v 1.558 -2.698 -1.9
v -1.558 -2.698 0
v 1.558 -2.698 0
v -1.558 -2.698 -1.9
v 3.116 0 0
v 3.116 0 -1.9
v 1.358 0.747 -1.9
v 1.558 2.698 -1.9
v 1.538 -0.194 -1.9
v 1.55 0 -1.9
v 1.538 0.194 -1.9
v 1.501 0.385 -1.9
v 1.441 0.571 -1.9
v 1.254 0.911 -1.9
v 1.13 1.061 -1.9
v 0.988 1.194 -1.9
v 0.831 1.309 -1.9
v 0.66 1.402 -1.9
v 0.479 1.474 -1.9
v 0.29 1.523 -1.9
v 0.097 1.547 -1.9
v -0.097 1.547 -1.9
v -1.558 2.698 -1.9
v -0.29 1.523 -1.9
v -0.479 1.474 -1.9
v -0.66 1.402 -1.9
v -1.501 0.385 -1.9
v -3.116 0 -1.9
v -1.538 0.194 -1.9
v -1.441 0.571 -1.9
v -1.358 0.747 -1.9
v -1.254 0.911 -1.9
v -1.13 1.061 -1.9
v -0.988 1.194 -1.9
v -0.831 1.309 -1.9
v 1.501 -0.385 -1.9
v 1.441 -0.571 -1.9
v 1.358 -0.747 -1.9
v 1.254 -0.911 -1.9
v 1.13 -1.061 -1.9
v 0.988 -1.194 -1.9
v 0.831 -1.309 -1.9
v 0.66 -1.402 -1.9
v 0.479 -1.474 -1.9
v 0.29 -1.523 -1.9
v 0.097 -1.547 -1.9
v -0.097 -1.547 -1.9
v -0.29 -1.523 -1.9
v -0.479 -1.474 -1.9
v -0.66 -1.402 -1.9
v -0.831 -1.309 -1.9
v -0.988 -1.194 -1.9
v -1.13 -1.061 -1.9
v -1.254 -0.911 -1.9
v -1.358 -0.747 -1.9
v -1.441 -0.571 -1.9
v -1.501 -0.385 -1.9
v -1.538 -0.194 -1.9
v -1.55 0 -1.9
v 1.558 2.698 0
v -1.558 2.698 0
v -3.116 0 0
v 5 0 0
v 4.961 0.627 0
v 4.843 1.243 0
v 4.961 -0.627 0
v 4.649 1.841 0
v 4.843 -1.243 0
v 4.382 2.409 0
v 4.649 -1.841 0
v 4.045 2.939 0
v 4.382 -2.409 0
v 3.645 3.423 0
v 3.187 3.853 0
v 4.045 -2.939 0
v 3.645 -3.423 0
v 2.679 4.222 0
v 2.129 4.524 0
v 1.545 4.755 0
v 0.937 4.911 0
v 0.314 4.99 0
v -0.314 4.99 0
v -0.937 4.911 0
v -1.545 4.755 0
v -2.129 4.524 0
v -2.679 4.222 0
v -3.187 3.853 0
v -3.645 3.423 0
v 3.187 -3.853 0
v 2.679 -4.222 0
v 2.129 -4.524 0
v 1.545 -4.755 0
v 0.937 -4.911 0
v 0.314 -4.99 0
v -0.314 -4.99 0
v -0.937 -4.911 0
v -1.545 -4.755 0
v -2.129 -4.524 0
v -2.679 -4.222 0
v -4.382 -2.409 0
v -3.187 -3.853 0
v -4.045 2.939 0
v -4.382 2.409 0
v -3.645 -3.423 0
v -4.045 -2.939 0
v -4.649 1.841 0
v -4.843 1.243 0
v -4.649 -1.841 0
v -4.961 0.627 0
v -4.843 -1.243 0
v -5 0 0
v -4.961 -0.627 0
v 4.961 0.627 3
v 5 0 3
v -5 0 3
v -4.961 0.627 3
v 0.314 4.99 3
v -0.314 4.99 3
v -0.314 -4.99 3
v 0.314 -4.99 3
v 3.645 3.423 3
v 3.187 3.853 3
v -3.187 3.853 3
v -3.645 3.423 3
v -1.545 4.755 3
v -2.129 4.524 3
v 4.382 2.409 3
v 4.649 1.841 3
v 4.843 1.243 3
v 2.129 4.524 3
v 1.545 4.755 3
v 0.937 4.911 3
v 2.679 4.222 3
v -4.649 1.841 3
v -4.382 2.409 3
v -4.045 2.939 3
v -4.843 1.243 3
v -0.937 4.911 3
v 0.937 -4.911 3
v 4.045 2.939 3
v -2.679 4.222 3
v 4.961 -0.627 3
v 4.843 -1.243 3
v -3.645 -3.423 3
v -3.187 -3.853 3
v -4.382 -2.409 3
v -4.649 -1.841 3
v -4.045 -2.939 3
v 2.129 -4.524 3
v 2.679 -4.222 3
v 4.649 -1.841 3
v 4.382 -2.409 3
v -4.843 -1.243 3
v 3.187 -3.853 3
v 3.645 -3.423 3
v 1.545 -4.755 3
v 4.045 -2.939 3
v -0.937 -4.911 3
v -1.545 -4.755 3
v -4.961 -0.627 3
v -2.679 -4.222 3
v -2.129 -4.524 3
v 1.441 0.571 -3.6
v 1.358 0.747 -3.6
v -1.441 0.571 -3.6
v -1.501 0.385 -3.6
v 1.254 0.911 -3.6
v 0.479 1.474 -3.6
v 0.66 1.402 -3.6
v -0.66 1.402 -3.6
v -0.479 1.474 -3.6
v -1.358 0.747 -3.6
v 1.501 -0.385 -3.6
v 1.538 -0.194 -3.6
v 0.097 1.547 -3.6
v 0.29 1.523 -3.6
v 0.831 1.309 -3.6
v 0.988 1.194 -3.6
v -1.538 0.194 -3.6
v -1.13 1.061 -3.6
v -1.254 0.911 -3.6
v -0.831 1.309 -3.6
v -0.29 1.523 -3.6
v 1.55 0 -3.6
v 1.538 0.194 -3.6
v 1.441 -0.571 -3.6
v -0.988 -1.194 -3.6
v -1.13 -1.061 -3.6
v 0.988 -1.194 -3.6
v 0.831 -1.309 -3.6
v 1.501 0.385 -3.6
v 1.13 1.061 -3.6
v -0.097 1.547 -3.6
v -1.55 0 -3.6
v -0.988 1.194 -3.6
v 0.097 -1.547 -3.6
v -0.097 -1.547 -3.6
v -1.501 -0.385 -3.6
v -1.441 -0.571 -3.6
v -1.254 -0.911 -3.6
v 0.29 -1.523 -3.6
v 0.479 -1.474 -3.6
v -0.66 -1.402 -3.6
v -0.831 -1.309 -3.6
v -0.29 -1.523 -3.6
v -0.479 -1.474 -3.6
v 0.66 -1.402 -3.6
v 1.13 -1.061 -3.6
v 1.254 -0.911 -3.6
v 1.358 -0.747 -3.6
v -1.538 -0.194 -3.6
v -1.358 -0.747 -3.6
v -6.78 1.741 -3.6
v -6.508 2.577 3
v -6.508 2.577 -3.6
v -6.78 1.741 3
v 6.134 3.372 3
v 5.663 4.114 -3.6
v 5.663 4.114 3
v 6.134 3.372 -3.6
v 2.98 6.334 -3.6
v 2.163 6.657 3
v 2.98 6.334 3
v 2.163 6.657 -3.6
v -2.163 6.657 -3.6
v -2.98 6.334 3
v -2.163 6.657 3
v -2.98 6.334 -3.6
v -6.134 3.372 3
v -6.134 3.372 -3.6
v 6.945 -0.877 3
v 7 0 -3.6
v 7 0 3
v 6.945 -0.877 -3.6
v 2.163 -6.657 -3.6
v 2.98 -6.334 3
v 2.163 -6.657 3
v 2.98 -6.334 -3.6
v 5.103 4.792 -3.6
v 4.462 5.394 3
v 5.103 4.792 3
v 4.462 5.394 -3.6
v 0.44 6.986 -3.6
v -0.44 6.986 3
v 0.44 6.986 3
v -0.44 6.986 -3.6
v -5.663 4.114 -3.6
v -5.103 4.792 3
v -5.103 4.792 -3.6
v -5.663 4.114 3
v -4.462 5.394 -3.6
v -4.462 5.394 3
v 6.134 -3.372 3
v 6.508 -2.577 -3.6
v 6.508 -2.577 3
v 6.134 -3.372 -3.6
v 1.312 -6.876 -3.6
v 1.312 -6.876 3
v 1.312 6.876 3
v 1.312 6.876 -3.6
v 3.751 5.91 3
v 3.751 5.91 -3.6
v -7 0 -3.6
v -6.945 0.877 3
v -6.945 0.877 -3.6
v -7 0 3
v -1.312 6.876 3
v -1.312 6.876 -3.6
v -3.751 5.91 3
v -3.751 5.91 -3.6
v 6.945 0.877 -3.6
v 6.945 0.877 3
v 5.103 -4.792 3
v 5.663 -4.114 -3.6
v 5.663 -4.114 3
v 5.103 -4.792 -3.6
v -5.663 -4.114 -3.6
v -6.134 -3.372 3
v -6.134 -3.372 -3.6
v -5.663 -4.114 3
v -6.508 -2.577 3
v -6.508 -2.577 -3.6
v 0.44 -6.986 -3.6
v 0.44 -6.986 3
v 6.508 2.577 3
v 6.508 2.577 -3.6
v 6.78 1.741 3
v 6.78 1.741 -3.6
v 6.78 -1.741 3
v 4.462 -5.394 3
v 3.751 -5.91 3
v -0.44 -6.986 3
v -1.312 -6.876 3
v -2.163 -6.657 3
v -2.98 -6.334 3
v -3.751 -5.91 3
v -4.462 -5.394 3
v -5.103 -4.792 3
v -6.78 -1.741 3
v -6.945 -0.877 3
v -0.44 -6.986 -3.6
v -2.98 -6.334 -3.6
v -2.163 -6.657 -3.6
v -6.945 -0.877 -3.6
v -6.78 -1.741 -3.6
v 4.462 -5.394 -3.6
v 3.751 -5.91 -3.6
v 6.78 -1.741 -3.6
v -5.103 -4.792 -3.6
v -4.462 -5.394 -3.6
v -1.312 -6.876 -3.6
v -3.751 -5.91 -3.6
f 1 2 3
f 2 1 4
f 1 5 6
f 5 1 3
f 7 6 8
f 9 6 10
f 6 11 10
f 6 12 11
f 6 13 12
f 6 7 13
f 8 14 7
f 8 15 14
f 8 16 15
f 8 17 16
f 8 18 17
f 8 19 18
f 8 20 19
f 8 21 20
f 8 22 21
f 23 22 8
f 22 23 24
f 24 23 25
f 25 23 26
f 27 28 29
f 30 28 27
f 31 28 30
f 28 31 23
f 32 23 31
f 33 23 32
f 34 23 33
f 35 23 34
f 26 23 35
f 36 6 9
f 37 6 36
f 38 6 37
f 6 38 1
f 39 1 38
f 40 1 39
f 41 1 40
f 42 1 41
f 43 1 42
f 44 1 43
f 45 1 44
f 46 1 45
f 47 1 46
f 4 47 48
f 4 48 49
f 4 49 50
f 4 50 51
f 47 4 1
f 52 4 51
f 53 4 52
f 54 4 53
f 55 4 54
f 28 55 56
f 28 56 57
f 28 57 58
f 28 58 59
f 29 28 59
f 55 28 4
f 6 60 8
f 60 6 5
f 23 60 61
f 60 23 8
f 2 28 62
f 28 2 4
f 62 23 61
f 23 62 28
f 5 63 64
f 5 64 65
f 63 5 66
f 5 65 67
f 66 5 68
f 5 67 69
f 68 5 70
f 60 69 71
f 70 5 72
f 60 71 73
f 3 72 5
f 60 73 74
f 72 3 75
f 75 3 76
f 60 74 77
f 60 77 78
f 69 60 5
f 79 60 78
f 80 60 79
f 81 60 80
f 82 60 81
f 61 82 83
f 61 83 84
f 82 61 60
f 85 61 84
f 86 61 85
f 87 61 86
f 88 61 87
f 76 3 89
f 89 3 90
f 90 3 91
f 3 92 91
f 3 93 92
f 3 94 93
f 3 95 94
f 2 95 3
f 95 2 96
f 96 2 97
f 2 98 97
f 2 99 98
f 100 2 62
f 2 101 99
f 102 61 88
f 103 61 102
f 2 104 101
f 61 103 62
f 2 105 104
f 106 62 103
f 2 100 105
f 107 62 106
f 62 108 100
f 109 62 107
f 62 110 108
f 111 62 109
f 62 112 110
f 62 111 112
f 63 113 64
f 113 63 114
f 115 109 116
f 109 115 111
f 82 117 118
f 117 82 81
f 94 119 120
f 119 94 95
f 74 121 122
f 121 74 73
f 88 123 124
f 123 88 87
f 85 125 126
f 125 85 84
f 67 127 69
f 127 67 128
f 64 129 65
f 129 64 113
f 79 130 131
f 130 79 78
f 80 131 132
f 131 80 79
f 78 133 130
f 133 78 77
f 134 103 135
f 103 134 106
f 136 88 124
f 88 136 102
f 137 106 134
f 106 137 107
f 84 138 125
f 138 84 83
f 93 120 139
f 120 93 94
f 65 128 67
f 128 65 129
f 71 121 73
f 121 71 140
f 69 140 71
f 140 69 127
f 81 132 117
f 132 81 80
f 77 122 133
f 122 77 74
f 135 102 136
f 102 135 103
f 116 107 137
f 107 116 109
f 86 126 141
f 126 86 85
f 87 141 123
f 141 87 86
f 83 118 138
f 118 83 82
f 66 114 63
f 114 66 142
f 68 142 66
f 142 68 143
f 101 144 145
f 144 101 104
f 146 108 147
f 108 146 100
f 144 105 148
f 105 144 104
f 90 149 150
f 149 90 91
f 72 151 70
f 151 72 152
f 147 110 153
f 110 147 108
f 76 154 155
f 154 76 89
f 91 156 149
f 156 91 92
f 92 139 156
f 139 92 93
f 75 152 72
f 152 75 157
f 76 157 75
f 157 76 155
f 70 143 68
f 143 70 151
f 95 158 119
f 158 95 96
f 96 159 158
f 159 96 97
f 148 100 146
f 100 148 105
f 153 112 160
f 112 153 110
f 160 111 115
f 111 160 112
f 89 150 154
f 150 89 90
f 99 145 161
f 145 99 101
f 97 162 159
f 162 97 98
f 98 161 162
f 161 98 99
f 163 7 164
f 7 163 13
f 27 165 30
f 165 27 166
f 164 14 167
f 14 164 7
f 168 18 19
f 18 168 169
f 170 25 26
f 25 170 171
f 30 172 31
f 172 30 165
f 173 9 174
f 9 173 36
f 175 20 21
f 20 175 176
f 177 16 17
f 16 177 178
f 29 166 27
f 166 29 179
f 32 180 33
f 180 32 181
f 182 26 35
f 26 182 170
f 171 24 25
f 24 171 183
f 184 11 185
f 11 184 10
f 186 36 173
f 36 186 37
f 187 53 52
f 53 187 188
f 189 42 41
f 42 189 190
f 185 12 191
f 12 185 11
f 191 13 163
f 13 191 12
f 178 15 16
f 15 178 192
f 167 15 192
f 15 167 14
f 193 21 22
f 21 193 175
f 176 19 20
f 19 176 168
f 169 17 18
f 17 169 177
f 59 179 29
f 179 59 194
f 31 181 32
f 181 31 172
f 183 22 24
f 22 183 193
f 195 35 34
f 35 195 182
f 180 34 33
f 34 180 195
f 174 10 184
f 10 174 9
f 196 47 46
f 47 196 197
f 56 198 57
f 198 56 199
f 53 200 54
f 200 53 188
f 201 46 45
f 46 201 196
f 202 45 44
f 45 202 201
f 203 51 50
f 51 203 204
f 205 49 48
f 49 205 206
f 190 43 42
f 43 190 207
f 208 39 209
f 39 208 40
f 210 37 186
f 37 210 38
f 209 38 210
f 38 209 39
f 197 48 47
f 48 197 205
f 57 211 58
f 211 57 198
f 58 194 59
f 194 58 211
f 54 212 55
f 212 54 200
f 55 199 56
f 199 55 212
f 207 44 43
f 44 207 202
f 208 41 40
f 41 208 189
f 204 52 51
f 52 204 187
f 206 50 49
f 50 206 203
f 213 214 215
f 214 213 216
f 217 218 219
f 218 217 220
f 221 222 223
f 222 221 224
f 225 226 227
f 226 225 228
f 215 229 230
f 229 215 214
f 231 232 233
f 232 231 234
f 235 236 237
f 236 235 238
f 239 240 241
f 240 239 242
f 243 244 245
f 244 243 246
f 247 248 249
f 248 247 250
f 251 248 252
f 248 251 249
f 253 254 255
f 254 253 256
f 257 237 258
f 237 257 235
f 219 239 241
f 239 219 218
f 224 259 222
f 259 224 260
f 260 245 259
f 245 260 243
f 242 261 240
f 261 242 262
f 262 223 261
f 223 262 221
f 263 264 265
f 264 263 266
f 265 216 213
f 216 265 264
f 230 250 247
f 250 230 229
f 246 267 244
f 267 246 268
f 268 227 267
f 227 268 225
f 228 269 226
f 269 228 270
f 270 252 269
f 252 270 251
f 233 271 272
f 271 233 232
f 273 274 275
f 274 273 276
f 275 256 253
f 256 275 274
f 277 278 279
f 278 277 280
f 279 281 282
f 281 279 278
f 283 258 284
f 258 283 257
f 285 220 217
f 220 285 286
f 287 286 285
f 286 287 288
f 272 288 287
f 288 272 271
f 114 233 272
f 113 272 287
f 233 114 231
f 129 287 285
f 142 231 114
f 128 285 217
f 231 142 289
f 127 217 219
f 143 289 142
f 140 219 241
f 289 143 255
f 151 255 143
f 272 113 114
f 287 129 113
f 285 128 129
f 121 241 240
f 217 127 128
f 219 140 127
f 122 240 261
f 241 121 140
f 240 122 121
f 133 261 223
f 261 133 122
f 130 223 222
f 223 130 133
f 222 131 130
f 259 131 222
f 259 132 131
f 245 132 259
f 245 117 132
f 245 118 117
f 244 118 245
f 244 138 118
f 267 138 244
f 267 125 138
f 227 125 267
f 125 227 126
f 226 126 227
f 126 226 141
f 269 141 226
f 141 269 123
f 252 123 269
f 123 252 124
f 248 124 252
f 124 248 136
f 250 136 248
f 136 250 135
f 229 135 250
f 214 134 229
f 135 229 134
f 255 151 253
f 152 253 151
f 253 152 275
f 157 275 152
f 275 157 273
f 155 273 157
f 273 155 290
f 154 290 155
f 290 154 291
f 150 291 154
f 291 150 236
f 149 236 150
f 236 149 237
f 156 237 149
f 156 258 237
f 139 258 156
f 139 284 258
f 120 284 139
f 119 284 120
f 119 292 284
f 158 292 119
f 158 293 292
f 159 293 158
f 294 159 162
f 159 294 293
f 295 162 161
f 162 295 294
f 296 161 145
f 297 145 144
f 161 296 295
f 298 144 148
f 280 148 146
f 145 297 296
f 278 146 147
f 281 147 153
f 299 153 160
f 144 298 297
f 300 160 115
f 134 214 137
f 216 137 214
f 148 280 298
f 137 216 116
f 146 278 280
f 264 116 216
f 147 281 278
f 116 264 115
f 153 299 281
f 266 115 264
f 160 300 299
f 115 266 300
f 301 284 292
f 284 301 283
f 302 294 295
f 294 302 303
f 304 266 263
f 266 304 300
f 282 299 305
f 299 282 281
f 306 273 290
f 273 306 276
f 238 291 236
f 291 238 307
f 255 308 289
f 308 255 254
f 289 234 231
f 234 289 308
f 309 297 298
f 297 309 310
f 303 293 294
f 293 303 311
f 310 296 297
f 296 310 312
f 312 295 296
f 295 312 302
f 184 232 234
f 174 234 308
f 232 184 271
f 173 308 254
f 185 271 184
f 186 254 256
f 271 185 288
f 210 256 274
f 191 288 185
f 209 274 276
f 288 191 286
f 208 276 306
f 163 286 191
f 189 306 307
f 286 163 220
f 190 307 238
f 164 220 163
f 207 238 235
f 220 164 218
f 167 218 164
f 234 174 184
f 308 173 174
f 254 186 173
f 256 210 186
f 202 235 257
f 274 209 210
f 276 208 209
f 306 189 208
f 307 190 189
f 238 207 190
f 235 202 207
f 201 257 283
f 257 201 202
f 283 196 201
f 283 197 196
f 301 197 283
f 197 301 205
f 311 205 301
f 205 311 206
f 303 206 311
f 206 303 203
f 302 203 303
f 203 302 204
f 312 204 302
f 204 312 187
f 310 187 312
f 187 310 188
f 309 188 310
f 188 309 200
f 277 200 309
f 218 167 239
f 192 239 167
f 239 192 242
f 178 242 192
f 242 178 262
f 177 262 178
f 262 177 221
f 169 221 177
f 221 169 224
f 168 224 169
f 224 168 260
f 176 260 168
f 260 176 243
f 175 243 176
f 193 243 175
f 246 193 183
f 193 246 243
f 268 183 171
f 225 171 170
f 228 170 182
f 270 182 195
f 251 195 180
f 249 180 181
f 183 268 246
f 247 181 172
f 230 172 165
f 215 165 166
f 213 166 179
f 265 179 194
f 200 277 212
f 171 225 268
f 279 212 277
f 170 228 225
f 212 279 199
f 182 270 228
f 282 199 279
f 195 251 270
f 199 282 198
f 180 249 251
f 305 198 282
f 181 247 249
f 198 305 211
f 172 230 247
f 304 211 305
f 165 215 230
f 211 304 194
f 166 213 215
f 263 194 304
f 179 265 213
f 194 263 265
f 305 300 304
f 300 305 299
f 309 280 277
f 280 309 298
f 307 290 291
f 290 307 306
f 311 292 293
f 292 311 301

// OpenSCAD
$fn = 50;

difference() {
	union() {
		translate(v = [0, 0, -3.5999999999999996]) {
			cylinder(h = 6.6, r = 7.0);
		}
	}
	union() {
		translate(v = [0, 0, 0]) {
			rotate(a = [0, 0, 0]) {
				difference() {
					union() {
						translate(v = [0, 0, -1.9]) {
							linear_extrude(height = 1.9) {
								polygon(points = [[3.1158, 0.0], [1.5579000000000005, 2.698361953111554], [-1.5578999999999994, 2.6983619531115544], [-3.1158, 3.815754496783323e-16], [-1.5579000000000014, -2.6983619531115535], [1.557899999999998, -2.6983619531115552]]);
							}
						}
					}
					union();
				}
			}
		}
		#cylinder(h = 3, r = 5.0);
		#translate(v = [0, 0, -100.0]) {
			cylinder(h = 200, r = 1.55);
		}
	}
}
